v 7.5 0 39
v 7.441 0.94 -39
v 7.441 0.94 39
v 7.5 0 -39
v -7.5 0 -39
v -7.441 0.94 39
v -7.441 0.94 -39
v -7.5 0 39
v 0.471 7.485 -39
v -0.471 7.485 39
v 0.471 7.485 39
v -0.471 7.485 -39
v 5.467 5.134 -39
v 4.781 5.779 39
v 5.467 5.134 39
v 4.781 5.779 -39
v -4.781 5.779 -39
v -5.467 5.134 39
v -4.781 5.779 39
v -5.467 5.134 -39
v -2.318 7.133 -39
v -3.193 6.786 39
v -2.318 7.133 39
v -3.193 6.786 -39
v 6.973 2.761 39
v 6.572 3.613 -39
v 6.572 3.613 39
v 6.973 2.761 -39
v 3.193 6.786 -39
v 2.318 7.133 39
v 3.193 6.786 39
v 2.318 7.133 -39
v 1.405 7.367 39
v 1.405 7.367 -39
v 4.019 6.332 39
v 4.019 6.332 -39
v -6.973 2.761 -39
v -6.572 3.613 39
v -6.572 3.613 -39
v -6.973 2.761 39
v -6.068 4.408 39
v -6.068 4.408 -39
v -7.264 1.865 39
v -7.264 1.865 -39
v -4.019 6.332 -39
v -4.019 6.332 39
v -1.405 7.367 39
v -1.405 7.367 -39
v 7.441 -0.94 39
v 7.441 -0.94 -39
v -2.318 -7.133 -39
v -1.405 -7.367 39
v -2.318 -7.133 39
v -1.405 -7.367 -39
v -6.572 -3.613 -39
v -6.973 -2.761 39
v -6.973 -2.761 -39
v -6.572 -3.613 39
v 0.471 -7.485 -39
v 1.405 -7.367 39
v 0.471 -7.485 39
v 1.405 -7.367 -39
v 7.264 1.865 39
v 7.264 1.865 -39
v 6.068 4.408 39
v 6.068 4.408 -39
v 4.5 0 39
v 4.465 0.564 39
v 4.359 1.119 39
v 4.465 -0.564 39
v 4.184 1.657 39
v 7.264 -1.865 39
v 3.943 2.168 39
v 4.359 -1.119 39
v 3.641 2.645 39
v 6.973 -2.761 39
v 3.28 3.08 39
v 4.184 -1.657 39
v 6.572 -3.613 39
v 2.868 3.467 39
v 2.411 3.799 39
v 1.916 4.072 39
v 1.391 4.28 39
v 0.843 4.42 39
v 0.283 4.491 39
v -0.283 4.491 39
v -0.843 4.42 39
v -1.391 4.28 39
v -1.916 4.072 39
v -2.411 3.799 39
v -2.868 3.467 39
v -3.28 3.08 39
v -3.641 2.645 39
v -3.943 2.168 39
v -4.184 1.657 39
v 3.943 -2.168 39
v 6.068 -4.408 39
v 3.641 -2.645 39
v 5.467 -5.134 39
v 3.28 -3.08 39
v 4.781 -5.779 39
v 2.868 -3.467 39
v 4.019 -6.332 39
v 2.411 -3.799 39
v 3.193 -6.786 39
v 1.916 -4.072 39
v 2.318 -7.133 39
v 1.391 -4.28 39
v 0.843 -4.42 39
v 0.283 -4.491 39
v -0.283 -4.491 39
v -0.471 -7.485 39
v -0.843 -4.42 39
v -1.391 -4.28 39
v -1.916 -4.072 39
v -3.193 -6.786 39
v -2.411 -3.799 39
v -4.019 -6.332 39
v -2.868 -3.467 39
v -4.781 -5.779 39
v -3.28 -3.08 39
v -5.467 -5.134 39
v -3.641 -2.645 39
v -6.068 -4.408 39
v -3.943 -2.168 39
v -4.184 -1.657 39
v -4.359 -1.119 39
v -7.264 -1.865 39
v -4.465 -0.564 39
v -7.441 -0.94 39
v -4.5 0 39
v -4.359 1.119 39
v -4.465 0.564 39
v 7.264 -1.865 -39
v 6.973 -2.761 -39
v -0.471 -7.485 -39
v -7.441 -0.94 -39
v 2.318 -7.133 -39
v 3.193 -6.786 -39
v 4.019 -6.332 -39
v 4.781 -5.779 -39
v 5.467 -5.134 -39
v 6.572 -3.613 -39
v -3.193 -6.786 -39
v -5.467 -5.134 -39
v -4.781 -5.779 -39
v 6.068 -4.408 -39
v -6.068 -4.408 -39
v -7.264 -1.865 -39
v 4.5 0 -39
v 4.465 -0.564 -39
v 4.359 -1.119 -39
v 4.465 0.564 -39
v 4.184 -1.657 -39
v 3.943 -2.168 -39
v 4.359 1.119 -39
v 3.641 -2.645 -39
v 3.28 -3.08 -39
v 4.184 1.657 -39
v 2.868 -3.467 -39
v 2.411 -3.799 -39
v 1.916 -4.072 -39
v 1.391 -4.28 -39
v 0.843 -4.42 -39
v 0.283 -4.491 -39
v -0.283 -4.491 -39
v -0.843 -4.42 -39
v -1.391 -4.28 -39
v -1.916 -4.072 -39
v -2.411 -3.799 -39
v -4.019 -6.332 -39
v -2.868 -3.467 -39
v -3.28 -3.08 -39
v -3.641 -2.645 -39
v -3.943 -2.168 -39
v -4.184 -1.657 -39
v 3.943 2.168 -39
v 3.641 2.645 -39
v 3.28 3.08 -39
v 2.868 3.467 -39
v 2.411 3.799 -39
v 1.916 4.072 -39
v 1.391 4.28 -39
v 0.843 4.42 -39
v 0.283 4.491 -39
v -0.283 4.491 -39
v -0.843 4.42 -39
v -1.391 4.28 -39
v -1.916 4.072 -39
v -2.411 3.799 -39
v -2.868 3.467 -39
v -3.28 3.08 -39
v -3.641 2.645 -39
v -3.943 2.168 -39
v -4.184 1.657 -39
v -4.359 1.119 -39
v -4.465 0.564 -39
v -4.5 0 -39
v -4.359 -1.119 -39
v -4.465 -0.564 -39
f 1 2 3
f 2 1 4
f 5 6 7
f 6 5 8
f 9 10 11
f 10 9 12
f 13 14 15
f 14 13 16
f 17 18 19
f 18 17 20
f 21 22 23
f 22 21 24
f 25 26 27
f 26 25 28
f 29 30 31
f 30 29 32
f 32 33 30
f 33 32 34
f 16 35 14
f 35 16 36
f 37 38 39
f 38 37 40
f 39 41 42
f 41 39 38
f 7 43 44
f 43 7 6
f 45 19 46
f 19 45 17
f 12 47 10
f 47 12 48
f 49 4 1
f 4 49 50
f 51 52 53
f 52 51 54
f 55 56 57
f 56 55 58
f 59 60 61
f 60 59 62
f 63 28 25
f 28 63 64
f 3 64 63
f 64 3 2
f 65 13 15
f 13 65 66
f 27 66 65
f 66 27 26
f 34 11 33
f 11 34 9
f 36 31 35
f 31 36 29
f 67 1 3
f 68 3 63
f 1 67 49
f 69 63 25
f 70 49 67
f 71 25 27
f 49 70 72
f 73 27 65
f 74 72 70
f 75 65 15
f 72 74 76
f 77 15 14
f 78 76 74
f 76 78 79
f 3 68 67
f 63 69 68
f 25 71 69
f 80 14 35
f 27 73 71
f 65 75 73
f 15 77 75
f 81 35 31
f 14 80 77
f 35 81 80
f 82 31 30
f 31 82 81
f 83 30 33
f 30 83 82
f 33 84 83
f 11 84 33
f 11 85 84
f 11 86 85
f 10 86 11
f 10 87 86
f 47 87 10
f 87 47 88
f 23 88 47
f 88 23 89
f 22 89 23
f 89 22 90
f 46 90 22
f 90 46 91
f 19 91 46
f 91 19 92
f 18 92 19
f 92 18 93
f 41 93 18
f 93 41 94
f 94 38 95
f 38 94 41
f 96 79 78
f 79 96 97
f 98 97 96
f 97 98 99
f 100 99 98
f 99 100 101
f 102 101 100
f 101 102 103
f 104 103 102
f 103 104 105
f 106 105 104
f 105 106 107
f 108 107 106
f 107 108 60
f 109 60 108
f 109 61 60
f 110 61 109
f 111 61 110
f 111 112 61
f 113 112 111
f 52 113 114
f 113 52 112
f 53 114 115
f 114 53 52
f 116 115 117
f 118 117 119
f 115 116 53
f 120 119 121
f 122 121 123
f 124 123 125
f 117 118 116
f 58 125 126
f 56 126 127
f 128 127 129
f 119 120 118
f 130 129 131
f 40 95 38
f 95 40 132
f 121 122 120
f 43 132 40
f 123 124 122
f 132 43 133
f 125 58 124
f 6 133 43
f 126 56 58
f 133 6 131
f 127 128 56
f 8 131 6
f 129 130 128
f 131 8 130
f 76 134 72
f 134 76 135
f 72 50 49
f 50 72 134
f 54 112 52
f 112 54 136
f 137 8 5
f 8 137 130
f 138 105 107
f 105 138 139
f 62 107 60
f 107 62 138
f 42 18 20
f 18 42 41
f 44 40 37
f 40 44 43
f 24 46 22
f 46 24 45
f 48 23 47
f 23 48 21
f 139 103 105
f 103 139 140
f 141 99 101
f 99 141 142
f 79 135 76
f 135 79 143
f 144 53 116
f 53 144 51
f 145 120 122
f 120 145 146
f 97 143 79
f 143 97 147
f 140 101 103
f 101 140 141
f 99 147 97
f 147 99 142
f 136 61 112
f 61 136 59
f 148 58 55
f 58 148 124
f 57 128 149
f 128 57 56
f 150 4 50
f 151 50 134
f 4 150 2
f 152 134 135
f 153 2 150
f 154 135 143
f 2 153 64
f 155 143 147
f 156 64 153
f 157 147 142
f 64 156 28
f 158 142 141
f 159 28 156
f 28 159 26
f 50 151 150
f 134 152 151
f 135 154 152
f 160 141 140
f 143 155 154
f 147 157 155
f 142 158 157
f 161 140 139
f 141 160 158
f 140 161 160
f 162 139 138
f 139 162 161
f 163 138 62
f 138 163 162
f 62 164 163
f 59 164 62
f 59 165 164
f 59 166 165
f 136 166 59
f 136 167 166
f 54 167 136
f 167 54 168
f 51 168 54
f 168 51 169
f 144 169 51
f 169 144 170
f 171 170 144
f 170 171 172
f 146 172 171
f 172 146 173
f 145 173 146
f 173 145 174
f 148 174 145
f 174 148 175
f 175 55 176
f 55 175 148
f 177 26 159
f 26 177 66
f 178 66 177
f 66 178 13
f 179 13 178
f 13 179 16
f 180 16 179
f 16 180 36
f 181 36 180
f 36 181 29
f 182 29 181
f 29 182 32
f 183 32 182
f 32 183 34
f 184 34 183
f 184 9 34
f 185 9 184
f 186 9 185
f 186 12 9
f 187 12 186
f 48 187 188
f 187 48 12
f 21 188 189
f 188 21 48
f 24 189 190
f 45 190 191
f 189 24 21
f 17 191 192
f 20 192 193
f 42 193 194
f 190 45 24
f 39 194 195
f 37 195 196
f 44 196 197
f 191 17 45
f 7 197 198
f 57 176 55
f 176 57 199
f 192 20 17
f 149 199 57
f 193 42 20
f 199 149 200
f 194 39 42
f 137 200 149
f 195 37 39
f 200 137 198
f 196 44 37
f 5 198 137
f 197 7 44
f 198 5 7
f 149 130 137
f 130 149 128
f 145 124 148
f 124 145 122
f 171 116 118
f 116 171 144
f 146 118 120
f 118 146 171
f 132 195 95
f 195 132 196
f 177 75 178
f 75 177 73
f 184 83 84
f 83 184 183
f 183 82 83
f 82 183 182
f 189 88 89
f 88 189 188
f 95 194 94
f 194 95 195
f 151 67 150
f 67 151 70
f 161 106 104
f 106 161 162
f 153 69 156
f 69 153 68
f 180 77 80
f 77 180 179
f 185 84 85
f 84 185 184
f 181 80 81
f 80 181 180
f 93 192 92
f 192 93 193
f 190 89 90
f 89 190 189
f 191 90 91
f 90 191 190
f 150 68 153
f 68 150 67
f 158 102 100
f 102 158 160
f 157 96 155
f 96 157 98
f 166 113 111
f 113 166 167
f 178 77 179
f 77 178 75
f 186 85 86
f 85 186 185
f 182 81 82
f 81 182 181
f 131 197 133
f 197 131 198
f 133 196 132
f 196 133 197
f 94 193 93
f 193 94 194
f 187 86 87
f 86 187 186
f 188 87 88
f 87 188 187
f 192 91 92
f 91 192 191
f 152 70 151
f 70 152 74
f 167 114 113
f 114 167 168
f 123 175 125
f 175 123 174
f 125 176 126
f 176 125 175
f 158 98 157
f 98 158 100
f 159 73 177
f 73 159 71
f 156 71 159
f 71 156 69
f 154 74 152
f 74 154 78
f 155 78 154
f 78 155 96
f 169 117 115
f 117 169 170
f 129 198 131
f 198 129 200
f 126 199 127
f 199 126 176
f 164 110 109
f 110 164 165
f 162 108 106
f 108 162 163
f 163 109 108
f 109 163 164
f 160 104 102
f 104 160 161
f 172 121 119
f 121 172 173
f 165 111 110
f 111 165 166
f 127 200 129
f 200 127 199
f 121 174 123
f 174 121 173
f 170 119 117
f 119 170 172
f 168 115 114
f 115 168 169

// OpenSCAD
$fn = 50;


difference() {
	union() {
		translate(v = [0, 0, -39.0000000000]) {
			cylinder(h = 78, r = 7.5000000000);
		}
	}
	union() {
		translate(v = [0, 0, -100.0000000000]) {
			cylinder(h = 200, r = 4.5000000000);
		}
	}
}
